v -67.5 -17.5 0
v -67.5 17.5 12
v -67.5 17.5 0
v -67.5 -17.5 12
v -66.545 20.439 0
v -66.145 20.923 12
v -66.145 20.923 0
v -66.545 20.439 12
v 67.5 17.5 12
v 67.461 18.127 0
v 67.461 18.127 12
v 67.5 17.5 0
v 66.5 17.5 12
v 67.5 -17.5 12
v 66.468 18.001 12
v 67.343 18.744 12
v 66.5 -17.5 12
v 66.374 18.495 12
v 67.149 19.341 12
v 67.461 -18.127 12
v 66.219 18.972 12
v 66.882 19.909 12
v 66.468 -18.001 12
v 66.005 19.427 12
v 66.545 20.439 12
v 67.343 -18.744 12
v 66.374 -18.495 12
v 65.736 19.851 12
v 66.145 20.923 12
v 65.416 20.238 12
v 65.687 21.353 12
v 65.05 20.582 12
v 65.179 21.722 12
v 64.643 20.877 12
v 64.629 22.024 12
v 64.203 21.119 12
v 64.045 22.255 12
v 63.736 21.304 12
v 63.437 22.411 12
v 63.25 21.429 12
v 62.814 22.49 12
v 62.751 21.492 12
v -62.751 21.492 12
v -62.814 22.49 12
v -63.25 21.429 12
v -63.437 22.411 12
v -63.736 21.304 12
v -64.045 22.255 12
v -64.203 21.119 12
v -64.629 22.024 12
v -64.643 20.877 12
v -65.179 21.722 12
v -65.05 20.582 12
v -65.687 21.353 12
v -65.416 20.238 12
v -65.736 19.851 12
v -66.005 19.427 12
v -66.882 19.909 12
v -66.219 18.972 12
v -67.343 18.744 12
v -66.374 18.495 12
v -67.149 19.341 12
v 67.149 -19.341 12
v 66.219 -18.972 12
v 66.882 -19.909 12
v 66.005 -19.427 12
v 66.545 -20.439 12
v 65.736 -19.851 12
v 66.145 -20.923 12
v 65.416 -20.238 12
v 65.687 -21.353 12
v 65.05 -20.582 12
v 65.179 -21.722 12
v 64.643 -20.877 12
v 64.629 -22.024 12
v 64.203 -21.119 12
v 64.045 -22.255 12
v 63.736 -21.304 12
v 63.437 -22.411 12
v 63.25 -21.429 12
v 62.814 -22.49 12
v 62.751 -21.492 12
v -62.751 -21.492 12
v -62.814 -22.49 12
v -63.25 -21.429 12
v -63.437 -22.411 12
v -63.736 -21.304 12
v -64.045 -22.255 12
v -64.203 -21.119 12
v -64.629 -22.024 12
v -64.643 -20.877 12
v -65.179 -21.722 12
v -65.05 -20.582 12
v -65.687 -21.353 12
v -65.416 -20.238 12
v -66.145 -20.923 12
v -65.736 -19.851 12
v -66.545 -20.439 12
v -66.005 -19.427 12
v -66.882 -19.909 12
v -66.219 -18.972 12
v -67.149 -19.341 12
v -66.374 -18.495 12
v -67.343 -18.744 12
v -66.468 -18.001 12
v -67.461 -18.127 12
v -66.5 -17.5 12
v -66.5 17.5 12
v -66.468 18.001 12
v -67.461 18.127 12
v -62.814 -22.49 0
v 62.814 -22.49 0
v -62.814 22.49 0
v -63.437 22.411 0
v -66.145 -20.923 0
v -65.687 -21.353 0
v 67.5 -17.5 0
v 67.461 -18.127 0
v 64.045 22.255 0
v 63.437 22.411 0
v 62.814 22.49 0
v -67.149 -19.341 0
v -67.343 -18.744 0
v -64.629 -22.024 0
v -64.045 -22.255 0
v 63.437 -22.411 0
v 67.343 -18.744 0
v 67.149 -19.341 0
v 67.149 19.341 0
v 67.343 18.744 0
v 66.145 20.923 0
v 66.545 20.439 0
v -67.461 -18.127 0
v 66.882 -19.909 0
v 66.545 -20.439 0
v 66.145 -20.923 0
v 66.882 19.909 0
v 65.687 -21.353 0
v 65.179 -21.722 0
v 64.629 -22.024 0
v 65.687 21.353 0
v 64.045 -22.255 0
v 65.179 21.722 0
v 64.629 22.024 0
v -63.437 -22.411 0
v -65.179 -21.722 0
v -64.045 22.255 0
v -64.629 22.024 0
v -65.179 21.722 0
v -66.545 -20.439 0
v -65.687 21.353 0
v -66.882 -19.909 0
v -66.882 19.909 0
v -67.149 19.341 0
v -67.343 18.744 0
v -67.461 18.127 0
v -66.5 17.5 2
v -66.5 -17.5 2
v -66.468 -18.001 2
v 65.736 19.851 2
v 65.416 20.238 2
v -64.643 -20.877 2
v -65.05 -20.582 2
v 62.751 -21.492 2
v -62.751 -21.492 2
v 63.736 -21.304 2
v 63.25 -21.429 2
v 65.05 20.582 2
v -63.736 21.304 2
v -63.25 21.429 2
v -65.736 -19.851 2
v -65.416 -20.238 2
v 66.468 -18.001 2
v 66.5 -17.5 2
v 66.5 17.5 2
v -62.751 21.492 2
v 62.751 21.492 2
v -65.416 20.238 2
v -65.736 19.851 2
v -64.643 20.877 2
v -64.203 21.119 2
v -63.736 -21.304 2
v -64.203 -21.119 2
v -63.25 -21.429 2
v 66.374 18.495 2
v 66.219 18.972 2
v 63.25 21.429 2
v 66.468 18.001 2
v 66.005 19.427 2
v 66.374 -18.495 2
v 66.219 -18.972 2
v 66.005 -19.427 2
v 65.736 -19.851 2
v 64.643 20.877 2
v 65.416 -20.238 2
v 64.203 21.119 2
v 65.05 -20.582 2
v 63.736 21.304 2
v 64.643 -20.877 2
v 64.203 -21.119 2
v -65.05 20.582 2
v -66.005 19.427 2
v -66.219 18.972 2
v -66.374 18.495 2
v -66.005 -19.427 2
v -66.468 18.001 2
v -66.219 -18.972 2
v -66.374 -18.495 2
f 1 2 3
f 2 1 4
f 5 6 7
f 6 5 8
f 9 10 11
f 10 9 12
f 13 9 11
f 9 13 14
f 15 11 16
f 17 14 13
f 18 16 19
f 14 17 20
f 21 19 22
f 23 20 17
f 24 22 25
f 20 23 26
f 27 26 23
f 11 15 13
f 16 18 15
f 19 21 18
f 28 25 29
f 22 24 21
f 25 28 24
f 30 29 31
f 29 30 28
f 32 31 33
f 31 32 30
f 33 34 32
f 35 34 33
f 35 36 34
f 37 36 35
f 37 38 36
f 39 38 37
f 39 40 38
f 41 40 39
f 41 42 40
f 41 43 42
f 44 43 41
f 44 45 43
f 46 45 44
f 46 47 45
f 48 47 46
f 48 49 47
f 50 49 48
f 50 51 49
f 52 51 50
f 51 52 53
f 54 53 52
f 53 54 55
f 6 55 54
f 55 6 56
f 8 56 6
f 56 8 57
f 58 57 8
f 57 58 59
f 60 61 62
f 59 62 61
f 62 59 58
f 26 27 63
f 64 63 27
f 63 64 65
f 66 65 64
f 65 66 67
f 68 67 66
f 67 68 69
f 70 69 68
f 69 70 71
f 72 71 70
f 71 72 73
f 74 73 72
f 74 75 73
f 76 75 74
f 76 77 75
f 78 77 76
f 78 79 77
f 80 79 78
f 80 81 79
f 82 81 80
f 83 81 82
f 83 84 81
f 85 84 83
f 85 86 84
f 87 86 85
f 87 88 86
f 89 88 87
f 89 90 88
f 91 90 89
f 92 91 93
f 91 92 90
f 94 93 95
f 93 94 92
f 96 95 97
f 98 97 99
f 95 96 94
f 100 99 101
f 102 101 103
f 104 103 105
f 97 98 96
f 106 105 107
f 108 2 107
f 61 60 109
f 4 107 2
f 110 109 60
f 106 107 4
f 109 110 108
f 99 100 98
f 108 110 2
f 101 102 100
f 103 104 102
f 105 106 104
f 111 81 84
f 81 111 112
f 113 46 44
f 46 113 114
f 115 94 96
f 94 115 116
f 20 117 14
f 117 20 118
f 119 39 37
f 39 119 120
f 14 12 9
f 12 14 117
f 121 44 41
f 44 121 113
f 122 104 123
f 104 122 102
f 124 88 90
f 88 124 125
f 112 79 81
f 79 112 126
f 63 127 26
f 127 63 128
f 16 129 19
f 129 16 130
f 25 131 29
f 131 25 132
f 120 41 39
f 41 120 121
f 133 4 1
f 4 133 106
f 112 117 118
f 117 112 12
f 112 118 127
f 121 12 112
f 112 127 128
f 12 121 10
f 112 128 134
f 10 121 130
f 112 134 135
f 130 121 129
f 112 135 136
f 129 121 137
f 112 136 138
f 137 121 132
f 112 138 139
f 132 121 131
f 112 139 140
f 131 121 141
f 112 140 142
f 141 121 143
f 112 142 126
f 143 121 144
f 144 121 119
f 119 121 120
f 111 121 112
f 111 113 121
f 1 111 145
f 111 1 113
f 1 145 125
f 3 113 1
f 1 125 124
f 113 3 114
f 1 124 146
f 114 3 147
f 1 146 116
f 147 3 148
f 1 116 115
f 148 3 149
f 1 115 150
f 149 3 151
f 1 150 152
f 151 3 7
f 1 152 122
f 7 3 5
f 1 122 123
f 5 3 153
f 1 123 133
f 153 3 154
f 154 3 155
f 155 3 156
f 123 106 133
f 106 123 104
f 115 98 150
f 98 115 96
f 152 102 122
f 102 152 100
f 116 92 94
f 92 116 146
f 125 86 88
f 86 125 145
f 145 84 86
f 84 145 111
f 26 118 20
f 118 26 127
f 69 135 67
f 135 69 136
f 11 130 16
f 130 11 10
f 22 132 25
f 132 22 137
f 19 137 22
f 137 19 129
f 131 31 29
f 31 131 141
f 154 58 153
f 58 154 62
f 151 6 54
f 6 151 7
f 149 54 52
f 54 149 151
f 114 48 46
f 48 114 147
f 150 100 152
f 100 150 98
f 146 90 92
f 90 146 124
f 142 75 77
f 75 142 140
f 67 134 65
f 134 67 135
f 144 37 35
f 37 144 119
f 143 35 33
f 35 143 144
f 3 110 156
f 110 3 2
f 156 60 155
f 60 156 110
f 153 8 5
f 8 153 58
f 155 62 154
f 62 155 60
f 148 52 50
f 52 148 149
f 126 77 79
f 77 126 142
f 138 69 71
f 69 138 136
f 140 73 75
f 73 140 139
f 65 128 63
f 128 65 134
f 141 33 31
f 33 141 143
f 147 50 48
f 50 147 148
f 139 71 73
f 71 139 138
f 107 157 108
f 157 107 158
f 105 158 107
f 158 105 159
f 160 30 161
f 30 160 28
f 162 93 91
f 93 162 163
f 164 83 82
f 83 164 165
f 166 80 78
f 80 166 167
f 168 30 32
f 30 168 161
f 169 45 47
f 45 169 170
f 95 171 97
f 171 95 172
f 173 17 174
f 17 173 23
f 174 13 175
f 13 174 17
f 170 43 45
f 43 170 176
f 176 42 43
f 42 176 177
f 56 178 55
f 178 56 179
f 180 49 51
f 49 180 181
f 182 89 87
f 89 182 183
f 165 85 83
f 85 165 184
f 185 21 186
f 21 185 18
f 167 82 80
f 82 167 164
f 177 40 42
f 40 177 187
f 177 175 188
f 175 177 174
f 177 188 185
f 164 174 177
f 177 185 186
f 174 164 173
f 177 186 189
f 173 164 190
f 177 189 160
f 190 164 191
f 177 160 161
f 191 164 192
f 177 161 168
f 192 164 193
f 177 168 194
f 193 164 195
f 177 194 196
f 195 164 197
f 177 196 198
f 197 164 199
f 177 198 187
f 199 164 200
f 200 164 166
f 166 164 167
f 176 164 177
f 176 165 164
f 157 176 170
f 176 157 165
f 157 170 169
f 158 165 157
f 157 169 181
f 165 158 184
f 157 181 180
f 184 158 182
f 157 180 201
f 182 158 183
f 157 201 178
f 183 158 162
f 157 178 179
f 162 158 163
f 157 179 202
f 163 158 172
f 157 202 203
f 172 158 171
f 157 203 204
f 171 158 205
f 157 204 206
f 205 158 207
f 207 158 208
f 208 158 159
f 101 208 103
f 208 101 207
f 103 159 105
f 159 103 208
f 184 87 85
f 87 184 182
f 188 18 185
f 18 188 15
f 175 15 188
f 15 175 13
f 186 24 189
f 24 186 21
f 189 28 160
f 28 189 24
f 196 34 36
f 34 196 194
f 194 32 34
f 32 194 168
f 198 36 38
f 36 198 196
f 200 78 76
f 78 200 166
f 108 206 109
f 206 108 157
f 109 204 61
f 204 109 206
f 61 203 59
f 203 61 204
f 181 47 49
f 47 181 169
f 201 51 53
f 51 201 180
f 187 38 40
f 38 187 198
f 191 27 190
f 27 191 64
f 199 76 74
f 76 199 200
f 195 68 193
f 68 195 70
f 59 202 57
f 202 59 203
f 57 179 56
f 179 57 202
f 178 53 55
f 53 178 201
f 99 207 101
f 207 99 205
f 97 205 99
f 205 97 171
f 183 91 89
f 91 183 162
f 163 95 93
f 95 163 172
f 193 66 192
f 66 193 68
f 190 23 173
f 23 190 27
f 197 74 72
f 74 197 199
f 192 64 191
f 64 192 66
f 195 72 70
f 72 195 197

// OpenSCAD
$fn = 50;


difference() {
	union() {
		hull() {
			translate(v = [-62.5000000000, 17.5000000000, 0]) {
				cylinder(h = 12, r = 5);
			}
			translate(v = [62.5000000000, 17.5000000000, 0]) {
				cylinder(h = 12, r = 5);
			}
			translate(v = [-62.5000000000, -17.5000000000, 0]) {
				cylinder(h = 12, r = 5);
			}
			translate(v = [62.5000000000, -17.5000000000, 0]) {
				cylinder(h = 12, r = 5);
			}
		}
	}
	union() {
		translate(v = [0, 0, 2]) {
			hull() {
				translate(v = [-62.5000000000, 17.5000000000, 0]) {
					cylinder(h = 10, r = 4);
				}
				translate(v = [62.5000000000, 17.5000000000, 0]) {
					cylinder(h = 10, r = 4);
				}
				translate(v = [-62.5000000000, -17.5000000000, 0]) {
					cylinder(h = 10, r = 4);
				}
				translate(v = [62.5000000000, -17.5000000000, 0]) {
					cylinder(h = 10, r = 4);
				}
			}
		}
	}
}
